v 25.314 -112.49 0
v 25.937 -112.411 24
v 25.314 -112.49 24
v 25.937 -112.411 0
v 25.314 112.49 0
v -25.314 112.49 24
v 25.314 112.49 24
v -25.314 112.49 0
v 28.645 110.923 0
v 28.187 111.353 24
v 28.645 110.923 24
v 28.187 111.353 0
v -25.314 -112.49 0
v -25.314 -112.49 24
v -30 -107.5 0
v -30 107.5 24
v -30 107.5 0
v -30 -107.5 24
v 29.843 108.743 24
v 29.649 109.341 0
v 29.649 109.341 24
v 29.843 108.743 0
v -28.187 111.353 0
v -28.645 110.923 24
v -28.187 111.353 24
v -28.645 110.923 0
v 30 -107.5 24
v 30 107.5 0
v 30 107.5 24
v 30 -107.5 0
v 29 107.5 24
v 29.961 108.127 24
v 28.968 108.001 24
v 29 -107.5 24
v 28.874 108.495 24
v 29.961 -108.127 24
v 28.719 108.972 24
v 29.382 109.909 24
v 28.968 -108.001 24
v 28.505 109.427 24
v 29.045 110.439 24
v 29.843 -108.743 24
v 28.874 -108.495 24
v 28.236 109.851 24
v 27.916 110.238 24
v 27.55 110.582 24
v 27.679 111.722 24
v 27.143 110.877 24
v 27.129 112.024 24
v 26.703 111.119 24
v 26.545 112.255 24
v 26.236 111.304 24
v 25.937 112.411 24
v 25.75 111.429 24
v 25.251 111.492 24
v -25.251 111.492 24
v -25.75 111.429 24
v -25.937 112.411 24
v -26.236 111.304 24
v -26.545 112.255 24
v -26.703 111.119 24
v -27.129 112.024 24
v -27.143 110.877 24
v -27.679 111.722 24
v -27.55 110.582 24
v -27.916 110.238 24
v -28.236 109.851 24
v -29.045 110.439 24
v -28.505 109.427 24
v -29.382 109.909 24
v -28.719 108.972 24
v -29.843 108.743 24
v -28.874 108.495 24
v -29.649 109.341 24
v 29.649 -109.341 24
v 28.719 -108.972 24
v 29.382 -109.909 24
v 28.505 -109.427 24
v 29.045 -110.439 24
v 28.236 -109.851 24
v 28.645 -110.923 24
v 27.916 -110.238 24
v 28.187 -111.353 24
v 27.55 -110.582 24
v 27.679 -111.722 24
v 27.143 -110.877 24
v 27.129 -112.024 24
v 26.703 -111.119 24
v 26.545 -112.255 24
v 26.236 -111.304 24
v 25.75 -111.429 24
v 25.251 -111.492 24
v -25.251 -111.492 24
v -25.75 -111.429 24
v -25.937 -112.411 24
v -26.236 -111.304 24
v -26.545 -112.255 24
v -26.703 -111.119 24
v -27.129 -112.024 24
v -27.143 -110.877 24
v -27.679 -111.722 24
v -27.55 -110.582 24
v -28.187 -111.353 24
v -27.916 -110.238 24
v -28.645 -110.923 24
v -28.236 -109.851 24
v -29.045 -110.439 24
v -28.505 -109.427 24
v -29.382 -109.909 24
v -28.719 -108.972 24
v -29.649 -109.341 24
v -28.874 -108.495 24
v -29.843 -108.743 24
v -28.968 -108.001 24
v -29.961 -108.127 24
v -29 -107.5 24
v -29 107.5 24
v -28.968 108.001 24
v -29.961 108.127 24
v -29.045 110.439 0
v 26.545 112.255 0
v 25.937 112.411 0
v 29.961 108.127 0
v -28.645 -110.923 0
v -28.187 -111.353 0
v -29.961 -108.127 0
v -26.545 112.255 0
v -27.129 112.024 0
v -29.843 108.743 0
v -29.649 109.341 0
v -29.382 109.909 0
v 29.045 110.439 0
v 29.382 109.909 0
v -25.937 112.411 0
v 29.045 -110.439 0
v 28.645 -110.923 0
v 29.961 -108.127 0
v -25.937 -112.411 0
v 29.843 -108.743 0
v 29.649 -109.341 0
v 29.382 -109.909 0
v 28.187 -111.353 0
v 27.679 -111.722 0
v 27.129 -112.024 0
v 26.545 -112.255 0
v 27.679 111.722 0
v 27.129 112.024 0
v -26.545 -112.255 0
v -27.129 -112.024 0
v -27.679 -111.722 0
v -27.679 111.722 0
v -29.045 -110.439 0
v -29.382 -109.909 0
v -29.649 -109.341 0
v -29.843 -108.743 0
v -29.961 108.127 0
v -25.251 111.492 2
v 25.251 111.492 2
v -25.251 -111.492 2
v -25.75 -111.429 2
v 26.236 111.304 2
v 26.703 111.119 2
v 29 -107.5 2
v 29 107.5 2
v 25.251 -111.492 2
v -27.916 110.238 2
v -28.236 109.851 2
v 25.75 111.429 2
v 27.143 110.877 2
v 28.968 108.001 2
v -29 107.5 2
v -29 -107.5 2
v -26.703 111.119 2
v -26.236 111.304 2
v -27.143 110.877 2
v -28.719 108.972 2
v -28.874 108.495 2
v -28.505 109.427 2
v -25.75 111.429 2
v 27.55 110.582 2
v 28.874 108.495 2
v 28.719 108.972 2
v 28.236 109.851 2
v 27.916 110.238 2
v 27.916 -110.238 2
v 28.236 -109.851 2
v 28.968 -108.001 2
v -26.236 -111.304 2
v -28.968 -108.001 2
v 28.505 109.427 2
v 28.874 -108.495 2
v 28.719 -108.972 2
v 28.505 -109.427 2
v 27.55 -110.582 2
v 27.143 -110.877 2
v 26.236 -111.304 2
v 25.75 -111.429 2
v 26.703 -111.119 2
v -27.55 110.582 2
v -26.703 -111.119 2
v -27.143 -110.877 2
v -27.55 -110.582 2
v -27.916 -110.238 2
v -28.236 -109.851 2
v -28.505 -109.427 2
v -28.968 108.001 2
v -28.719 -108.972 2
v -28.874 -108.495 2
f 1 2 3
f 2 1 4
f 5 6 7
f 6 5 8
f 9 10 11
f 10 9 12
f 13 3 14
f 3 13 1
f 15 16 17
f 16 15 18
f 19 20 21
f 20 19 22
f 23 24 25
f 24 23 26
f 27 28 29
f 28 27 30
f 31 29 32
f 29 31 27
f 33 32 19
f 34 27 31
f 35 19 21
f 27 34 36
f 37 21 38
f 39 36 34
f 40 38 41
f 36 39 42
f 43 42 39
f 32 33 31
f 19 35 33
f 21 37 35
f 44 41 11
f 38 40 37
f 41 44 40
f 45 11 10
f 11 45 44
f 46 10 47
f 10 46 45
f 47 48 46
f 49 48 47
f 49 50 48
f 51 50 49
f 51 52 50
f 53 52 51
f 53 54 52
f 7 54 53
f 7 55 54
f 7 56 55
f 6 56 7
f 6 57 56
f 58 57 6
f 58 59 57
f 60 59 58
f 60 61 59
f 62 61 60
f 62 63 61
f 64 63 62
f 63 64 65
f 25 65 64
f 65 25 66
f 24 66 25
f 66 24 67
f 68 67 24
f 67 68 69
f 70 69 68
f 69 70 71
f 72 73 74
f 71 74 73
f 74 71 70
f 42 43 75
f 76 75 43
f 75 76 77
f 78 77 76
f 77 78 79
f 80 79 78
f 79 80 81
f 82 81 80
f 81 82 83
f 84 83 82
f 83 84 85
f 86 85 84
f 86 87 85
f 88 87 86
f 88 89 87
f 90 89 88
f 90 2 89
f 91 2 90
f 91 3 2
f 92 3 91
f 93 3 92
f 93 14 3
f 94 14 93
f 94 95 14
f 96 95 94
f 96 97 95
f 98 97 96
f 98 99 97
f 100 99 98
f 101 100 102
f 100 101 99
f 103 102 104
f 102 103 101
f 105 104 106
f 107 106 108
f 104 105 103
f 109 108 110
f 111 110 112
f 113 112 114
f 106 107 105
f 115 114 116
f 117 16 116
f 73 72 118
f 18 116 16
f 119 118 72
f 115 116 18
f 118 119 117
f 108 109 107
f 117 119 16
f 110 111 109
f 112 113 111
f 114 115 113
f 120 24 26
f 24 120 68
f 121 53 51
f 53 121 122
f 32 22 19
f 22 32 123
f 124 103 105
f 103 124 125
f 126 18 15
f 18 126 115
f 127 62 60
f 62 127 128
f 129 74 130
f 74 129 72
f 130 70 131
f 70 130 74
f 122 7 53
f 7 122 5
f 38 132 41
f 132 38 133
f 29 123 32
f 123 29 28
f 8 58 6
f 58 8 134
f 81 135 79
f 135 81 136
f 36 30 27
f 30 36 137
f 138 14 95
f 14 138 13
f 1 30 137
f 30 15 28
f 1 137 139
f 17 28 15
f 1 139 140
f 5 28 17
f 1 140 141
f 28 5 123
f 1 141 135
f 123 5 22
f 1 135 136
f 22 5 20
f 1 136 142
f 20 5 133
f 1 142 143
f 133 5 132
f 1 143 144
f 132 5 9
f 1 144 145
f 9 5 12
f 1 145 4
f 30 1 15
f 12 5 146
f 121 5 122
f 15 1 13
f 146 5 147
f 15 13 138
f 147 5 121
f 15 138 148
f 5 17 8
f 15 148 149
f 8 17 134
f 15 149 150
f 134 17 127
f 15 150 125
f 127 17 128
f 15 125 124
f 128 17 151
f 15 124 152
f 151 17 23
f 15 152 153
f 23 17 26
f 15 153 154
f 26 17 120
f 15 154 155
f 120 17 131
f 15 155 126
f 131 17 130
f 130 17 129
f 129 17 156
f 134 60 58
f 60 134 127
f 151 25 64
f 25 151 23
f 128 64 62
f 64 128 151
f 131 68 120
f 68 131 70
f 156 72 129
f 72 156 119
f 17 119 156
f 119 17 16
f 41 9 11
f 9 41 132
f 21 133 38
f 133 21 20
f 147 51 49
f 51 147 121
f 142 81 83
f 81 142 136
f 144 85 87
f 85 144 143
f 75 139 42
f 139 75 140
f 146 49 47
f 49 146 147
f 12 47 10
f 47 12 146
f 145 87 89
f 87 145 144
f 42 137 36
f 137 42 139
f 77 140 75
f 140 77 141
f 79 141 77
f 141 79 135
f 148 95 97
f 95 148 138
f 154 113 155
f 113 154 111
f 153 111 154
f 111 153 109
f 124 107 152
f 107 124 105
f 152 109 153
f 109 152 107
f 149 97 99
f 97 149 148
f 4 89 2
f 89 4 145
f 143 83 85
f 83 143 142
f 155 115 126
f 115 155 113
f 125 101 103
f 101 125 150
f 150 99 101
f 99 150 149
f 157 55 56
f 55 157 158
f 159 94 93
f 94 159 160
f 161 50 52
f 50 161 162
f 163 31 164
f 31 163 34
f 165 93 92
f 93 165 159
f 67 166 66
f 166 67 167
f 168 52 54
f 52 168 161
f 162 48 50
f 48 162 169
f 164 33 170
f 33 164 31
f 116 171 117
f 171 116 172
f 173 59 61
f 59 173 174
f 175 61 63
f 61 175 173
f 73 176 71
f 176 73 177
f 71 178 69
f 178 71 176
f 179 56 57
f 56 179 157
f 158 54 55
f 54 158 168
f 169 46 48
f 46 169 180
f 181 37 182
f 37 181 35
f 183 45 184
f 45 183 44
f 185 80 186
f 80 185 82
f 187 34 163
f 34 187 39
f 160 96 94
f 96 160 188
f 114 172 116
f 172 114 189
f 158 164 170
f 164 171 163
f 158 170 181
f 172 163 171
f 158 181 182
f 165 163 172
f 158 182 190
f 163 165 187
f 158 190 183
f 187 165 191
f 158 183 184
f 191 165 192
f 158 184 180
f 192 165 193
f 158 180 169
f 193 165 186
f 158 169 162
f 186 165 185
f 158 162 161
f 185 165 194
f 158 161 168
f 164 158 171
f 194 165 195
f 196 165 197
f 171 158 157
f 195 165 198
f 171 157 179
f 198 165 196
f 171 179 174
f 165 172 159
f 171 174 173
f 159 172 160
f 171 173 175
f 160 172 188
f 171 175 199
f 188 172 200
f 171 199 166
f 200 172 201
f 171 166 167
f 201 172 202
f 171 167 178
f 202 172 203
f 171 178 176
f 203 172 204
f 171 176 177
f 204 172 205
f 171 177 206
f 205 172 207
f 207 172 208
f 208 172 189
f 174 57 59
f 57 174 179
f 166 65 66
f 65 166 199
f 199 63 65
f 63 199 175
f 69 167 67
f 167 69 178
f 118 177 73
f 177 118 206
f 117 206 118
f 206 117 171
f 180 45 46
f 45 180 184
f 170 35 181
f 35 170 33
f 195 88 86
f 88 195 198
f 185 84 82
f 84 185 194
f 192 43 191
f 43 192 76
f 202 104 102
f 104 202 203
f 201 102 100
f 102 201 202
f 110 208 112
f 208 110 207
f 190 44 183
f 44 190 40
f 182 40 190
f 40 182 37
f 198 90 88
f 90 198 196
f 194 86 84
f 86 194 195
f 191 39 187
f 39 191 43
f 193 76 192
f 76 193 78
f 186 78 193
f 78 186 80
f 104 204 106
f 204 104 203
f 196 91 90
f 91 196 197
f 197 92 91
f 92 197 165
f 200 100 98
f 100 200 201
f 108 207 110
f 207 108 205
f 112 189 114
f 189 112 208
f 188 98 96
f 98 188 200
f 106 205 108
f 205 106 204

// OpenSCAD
$fn = 50;


difference() {
	union() {
		hull() {
			translate(v = [-25.0000000000, 107.5000000000, 0]) {
				cylinder(h = 24, r = 5);
			}
			translate(v = [25.0000000000, 107.5000000000, 0]) {
				cylinder(h = 24, r = 5);
			}
			translate(v = [-25.0000000000, -107.5000000000, 0]) {
				cylinder(h = 24, r = 5);
			}
			translate(v = [25.0000000000, -107.5000000000, 0]) {
				cylinder(h = 24, r = 5);
			}
		}
	}
	union() {
		translate(v = [0, 0, 2]) {
			hull() {
				translate(v = [-25.0000000000, 107.5000000000, 0]) {
					cylinder(h = 22, r = 4);
				}
				translate(v = [25.0000000000, 107.5000000000, 0]) {
					cylinder(h = 22, r = 4);
				}
				translate(v = [-25.0000000000, -107.5000000000, 0]) {
					cylinder(h = 22, r = 4);
				}
				translate(v = [25.0000000000, -107.5000000000, 0]) {
					cylinder(h = 22, r = 4);
				}
			}
		}
	}
}
